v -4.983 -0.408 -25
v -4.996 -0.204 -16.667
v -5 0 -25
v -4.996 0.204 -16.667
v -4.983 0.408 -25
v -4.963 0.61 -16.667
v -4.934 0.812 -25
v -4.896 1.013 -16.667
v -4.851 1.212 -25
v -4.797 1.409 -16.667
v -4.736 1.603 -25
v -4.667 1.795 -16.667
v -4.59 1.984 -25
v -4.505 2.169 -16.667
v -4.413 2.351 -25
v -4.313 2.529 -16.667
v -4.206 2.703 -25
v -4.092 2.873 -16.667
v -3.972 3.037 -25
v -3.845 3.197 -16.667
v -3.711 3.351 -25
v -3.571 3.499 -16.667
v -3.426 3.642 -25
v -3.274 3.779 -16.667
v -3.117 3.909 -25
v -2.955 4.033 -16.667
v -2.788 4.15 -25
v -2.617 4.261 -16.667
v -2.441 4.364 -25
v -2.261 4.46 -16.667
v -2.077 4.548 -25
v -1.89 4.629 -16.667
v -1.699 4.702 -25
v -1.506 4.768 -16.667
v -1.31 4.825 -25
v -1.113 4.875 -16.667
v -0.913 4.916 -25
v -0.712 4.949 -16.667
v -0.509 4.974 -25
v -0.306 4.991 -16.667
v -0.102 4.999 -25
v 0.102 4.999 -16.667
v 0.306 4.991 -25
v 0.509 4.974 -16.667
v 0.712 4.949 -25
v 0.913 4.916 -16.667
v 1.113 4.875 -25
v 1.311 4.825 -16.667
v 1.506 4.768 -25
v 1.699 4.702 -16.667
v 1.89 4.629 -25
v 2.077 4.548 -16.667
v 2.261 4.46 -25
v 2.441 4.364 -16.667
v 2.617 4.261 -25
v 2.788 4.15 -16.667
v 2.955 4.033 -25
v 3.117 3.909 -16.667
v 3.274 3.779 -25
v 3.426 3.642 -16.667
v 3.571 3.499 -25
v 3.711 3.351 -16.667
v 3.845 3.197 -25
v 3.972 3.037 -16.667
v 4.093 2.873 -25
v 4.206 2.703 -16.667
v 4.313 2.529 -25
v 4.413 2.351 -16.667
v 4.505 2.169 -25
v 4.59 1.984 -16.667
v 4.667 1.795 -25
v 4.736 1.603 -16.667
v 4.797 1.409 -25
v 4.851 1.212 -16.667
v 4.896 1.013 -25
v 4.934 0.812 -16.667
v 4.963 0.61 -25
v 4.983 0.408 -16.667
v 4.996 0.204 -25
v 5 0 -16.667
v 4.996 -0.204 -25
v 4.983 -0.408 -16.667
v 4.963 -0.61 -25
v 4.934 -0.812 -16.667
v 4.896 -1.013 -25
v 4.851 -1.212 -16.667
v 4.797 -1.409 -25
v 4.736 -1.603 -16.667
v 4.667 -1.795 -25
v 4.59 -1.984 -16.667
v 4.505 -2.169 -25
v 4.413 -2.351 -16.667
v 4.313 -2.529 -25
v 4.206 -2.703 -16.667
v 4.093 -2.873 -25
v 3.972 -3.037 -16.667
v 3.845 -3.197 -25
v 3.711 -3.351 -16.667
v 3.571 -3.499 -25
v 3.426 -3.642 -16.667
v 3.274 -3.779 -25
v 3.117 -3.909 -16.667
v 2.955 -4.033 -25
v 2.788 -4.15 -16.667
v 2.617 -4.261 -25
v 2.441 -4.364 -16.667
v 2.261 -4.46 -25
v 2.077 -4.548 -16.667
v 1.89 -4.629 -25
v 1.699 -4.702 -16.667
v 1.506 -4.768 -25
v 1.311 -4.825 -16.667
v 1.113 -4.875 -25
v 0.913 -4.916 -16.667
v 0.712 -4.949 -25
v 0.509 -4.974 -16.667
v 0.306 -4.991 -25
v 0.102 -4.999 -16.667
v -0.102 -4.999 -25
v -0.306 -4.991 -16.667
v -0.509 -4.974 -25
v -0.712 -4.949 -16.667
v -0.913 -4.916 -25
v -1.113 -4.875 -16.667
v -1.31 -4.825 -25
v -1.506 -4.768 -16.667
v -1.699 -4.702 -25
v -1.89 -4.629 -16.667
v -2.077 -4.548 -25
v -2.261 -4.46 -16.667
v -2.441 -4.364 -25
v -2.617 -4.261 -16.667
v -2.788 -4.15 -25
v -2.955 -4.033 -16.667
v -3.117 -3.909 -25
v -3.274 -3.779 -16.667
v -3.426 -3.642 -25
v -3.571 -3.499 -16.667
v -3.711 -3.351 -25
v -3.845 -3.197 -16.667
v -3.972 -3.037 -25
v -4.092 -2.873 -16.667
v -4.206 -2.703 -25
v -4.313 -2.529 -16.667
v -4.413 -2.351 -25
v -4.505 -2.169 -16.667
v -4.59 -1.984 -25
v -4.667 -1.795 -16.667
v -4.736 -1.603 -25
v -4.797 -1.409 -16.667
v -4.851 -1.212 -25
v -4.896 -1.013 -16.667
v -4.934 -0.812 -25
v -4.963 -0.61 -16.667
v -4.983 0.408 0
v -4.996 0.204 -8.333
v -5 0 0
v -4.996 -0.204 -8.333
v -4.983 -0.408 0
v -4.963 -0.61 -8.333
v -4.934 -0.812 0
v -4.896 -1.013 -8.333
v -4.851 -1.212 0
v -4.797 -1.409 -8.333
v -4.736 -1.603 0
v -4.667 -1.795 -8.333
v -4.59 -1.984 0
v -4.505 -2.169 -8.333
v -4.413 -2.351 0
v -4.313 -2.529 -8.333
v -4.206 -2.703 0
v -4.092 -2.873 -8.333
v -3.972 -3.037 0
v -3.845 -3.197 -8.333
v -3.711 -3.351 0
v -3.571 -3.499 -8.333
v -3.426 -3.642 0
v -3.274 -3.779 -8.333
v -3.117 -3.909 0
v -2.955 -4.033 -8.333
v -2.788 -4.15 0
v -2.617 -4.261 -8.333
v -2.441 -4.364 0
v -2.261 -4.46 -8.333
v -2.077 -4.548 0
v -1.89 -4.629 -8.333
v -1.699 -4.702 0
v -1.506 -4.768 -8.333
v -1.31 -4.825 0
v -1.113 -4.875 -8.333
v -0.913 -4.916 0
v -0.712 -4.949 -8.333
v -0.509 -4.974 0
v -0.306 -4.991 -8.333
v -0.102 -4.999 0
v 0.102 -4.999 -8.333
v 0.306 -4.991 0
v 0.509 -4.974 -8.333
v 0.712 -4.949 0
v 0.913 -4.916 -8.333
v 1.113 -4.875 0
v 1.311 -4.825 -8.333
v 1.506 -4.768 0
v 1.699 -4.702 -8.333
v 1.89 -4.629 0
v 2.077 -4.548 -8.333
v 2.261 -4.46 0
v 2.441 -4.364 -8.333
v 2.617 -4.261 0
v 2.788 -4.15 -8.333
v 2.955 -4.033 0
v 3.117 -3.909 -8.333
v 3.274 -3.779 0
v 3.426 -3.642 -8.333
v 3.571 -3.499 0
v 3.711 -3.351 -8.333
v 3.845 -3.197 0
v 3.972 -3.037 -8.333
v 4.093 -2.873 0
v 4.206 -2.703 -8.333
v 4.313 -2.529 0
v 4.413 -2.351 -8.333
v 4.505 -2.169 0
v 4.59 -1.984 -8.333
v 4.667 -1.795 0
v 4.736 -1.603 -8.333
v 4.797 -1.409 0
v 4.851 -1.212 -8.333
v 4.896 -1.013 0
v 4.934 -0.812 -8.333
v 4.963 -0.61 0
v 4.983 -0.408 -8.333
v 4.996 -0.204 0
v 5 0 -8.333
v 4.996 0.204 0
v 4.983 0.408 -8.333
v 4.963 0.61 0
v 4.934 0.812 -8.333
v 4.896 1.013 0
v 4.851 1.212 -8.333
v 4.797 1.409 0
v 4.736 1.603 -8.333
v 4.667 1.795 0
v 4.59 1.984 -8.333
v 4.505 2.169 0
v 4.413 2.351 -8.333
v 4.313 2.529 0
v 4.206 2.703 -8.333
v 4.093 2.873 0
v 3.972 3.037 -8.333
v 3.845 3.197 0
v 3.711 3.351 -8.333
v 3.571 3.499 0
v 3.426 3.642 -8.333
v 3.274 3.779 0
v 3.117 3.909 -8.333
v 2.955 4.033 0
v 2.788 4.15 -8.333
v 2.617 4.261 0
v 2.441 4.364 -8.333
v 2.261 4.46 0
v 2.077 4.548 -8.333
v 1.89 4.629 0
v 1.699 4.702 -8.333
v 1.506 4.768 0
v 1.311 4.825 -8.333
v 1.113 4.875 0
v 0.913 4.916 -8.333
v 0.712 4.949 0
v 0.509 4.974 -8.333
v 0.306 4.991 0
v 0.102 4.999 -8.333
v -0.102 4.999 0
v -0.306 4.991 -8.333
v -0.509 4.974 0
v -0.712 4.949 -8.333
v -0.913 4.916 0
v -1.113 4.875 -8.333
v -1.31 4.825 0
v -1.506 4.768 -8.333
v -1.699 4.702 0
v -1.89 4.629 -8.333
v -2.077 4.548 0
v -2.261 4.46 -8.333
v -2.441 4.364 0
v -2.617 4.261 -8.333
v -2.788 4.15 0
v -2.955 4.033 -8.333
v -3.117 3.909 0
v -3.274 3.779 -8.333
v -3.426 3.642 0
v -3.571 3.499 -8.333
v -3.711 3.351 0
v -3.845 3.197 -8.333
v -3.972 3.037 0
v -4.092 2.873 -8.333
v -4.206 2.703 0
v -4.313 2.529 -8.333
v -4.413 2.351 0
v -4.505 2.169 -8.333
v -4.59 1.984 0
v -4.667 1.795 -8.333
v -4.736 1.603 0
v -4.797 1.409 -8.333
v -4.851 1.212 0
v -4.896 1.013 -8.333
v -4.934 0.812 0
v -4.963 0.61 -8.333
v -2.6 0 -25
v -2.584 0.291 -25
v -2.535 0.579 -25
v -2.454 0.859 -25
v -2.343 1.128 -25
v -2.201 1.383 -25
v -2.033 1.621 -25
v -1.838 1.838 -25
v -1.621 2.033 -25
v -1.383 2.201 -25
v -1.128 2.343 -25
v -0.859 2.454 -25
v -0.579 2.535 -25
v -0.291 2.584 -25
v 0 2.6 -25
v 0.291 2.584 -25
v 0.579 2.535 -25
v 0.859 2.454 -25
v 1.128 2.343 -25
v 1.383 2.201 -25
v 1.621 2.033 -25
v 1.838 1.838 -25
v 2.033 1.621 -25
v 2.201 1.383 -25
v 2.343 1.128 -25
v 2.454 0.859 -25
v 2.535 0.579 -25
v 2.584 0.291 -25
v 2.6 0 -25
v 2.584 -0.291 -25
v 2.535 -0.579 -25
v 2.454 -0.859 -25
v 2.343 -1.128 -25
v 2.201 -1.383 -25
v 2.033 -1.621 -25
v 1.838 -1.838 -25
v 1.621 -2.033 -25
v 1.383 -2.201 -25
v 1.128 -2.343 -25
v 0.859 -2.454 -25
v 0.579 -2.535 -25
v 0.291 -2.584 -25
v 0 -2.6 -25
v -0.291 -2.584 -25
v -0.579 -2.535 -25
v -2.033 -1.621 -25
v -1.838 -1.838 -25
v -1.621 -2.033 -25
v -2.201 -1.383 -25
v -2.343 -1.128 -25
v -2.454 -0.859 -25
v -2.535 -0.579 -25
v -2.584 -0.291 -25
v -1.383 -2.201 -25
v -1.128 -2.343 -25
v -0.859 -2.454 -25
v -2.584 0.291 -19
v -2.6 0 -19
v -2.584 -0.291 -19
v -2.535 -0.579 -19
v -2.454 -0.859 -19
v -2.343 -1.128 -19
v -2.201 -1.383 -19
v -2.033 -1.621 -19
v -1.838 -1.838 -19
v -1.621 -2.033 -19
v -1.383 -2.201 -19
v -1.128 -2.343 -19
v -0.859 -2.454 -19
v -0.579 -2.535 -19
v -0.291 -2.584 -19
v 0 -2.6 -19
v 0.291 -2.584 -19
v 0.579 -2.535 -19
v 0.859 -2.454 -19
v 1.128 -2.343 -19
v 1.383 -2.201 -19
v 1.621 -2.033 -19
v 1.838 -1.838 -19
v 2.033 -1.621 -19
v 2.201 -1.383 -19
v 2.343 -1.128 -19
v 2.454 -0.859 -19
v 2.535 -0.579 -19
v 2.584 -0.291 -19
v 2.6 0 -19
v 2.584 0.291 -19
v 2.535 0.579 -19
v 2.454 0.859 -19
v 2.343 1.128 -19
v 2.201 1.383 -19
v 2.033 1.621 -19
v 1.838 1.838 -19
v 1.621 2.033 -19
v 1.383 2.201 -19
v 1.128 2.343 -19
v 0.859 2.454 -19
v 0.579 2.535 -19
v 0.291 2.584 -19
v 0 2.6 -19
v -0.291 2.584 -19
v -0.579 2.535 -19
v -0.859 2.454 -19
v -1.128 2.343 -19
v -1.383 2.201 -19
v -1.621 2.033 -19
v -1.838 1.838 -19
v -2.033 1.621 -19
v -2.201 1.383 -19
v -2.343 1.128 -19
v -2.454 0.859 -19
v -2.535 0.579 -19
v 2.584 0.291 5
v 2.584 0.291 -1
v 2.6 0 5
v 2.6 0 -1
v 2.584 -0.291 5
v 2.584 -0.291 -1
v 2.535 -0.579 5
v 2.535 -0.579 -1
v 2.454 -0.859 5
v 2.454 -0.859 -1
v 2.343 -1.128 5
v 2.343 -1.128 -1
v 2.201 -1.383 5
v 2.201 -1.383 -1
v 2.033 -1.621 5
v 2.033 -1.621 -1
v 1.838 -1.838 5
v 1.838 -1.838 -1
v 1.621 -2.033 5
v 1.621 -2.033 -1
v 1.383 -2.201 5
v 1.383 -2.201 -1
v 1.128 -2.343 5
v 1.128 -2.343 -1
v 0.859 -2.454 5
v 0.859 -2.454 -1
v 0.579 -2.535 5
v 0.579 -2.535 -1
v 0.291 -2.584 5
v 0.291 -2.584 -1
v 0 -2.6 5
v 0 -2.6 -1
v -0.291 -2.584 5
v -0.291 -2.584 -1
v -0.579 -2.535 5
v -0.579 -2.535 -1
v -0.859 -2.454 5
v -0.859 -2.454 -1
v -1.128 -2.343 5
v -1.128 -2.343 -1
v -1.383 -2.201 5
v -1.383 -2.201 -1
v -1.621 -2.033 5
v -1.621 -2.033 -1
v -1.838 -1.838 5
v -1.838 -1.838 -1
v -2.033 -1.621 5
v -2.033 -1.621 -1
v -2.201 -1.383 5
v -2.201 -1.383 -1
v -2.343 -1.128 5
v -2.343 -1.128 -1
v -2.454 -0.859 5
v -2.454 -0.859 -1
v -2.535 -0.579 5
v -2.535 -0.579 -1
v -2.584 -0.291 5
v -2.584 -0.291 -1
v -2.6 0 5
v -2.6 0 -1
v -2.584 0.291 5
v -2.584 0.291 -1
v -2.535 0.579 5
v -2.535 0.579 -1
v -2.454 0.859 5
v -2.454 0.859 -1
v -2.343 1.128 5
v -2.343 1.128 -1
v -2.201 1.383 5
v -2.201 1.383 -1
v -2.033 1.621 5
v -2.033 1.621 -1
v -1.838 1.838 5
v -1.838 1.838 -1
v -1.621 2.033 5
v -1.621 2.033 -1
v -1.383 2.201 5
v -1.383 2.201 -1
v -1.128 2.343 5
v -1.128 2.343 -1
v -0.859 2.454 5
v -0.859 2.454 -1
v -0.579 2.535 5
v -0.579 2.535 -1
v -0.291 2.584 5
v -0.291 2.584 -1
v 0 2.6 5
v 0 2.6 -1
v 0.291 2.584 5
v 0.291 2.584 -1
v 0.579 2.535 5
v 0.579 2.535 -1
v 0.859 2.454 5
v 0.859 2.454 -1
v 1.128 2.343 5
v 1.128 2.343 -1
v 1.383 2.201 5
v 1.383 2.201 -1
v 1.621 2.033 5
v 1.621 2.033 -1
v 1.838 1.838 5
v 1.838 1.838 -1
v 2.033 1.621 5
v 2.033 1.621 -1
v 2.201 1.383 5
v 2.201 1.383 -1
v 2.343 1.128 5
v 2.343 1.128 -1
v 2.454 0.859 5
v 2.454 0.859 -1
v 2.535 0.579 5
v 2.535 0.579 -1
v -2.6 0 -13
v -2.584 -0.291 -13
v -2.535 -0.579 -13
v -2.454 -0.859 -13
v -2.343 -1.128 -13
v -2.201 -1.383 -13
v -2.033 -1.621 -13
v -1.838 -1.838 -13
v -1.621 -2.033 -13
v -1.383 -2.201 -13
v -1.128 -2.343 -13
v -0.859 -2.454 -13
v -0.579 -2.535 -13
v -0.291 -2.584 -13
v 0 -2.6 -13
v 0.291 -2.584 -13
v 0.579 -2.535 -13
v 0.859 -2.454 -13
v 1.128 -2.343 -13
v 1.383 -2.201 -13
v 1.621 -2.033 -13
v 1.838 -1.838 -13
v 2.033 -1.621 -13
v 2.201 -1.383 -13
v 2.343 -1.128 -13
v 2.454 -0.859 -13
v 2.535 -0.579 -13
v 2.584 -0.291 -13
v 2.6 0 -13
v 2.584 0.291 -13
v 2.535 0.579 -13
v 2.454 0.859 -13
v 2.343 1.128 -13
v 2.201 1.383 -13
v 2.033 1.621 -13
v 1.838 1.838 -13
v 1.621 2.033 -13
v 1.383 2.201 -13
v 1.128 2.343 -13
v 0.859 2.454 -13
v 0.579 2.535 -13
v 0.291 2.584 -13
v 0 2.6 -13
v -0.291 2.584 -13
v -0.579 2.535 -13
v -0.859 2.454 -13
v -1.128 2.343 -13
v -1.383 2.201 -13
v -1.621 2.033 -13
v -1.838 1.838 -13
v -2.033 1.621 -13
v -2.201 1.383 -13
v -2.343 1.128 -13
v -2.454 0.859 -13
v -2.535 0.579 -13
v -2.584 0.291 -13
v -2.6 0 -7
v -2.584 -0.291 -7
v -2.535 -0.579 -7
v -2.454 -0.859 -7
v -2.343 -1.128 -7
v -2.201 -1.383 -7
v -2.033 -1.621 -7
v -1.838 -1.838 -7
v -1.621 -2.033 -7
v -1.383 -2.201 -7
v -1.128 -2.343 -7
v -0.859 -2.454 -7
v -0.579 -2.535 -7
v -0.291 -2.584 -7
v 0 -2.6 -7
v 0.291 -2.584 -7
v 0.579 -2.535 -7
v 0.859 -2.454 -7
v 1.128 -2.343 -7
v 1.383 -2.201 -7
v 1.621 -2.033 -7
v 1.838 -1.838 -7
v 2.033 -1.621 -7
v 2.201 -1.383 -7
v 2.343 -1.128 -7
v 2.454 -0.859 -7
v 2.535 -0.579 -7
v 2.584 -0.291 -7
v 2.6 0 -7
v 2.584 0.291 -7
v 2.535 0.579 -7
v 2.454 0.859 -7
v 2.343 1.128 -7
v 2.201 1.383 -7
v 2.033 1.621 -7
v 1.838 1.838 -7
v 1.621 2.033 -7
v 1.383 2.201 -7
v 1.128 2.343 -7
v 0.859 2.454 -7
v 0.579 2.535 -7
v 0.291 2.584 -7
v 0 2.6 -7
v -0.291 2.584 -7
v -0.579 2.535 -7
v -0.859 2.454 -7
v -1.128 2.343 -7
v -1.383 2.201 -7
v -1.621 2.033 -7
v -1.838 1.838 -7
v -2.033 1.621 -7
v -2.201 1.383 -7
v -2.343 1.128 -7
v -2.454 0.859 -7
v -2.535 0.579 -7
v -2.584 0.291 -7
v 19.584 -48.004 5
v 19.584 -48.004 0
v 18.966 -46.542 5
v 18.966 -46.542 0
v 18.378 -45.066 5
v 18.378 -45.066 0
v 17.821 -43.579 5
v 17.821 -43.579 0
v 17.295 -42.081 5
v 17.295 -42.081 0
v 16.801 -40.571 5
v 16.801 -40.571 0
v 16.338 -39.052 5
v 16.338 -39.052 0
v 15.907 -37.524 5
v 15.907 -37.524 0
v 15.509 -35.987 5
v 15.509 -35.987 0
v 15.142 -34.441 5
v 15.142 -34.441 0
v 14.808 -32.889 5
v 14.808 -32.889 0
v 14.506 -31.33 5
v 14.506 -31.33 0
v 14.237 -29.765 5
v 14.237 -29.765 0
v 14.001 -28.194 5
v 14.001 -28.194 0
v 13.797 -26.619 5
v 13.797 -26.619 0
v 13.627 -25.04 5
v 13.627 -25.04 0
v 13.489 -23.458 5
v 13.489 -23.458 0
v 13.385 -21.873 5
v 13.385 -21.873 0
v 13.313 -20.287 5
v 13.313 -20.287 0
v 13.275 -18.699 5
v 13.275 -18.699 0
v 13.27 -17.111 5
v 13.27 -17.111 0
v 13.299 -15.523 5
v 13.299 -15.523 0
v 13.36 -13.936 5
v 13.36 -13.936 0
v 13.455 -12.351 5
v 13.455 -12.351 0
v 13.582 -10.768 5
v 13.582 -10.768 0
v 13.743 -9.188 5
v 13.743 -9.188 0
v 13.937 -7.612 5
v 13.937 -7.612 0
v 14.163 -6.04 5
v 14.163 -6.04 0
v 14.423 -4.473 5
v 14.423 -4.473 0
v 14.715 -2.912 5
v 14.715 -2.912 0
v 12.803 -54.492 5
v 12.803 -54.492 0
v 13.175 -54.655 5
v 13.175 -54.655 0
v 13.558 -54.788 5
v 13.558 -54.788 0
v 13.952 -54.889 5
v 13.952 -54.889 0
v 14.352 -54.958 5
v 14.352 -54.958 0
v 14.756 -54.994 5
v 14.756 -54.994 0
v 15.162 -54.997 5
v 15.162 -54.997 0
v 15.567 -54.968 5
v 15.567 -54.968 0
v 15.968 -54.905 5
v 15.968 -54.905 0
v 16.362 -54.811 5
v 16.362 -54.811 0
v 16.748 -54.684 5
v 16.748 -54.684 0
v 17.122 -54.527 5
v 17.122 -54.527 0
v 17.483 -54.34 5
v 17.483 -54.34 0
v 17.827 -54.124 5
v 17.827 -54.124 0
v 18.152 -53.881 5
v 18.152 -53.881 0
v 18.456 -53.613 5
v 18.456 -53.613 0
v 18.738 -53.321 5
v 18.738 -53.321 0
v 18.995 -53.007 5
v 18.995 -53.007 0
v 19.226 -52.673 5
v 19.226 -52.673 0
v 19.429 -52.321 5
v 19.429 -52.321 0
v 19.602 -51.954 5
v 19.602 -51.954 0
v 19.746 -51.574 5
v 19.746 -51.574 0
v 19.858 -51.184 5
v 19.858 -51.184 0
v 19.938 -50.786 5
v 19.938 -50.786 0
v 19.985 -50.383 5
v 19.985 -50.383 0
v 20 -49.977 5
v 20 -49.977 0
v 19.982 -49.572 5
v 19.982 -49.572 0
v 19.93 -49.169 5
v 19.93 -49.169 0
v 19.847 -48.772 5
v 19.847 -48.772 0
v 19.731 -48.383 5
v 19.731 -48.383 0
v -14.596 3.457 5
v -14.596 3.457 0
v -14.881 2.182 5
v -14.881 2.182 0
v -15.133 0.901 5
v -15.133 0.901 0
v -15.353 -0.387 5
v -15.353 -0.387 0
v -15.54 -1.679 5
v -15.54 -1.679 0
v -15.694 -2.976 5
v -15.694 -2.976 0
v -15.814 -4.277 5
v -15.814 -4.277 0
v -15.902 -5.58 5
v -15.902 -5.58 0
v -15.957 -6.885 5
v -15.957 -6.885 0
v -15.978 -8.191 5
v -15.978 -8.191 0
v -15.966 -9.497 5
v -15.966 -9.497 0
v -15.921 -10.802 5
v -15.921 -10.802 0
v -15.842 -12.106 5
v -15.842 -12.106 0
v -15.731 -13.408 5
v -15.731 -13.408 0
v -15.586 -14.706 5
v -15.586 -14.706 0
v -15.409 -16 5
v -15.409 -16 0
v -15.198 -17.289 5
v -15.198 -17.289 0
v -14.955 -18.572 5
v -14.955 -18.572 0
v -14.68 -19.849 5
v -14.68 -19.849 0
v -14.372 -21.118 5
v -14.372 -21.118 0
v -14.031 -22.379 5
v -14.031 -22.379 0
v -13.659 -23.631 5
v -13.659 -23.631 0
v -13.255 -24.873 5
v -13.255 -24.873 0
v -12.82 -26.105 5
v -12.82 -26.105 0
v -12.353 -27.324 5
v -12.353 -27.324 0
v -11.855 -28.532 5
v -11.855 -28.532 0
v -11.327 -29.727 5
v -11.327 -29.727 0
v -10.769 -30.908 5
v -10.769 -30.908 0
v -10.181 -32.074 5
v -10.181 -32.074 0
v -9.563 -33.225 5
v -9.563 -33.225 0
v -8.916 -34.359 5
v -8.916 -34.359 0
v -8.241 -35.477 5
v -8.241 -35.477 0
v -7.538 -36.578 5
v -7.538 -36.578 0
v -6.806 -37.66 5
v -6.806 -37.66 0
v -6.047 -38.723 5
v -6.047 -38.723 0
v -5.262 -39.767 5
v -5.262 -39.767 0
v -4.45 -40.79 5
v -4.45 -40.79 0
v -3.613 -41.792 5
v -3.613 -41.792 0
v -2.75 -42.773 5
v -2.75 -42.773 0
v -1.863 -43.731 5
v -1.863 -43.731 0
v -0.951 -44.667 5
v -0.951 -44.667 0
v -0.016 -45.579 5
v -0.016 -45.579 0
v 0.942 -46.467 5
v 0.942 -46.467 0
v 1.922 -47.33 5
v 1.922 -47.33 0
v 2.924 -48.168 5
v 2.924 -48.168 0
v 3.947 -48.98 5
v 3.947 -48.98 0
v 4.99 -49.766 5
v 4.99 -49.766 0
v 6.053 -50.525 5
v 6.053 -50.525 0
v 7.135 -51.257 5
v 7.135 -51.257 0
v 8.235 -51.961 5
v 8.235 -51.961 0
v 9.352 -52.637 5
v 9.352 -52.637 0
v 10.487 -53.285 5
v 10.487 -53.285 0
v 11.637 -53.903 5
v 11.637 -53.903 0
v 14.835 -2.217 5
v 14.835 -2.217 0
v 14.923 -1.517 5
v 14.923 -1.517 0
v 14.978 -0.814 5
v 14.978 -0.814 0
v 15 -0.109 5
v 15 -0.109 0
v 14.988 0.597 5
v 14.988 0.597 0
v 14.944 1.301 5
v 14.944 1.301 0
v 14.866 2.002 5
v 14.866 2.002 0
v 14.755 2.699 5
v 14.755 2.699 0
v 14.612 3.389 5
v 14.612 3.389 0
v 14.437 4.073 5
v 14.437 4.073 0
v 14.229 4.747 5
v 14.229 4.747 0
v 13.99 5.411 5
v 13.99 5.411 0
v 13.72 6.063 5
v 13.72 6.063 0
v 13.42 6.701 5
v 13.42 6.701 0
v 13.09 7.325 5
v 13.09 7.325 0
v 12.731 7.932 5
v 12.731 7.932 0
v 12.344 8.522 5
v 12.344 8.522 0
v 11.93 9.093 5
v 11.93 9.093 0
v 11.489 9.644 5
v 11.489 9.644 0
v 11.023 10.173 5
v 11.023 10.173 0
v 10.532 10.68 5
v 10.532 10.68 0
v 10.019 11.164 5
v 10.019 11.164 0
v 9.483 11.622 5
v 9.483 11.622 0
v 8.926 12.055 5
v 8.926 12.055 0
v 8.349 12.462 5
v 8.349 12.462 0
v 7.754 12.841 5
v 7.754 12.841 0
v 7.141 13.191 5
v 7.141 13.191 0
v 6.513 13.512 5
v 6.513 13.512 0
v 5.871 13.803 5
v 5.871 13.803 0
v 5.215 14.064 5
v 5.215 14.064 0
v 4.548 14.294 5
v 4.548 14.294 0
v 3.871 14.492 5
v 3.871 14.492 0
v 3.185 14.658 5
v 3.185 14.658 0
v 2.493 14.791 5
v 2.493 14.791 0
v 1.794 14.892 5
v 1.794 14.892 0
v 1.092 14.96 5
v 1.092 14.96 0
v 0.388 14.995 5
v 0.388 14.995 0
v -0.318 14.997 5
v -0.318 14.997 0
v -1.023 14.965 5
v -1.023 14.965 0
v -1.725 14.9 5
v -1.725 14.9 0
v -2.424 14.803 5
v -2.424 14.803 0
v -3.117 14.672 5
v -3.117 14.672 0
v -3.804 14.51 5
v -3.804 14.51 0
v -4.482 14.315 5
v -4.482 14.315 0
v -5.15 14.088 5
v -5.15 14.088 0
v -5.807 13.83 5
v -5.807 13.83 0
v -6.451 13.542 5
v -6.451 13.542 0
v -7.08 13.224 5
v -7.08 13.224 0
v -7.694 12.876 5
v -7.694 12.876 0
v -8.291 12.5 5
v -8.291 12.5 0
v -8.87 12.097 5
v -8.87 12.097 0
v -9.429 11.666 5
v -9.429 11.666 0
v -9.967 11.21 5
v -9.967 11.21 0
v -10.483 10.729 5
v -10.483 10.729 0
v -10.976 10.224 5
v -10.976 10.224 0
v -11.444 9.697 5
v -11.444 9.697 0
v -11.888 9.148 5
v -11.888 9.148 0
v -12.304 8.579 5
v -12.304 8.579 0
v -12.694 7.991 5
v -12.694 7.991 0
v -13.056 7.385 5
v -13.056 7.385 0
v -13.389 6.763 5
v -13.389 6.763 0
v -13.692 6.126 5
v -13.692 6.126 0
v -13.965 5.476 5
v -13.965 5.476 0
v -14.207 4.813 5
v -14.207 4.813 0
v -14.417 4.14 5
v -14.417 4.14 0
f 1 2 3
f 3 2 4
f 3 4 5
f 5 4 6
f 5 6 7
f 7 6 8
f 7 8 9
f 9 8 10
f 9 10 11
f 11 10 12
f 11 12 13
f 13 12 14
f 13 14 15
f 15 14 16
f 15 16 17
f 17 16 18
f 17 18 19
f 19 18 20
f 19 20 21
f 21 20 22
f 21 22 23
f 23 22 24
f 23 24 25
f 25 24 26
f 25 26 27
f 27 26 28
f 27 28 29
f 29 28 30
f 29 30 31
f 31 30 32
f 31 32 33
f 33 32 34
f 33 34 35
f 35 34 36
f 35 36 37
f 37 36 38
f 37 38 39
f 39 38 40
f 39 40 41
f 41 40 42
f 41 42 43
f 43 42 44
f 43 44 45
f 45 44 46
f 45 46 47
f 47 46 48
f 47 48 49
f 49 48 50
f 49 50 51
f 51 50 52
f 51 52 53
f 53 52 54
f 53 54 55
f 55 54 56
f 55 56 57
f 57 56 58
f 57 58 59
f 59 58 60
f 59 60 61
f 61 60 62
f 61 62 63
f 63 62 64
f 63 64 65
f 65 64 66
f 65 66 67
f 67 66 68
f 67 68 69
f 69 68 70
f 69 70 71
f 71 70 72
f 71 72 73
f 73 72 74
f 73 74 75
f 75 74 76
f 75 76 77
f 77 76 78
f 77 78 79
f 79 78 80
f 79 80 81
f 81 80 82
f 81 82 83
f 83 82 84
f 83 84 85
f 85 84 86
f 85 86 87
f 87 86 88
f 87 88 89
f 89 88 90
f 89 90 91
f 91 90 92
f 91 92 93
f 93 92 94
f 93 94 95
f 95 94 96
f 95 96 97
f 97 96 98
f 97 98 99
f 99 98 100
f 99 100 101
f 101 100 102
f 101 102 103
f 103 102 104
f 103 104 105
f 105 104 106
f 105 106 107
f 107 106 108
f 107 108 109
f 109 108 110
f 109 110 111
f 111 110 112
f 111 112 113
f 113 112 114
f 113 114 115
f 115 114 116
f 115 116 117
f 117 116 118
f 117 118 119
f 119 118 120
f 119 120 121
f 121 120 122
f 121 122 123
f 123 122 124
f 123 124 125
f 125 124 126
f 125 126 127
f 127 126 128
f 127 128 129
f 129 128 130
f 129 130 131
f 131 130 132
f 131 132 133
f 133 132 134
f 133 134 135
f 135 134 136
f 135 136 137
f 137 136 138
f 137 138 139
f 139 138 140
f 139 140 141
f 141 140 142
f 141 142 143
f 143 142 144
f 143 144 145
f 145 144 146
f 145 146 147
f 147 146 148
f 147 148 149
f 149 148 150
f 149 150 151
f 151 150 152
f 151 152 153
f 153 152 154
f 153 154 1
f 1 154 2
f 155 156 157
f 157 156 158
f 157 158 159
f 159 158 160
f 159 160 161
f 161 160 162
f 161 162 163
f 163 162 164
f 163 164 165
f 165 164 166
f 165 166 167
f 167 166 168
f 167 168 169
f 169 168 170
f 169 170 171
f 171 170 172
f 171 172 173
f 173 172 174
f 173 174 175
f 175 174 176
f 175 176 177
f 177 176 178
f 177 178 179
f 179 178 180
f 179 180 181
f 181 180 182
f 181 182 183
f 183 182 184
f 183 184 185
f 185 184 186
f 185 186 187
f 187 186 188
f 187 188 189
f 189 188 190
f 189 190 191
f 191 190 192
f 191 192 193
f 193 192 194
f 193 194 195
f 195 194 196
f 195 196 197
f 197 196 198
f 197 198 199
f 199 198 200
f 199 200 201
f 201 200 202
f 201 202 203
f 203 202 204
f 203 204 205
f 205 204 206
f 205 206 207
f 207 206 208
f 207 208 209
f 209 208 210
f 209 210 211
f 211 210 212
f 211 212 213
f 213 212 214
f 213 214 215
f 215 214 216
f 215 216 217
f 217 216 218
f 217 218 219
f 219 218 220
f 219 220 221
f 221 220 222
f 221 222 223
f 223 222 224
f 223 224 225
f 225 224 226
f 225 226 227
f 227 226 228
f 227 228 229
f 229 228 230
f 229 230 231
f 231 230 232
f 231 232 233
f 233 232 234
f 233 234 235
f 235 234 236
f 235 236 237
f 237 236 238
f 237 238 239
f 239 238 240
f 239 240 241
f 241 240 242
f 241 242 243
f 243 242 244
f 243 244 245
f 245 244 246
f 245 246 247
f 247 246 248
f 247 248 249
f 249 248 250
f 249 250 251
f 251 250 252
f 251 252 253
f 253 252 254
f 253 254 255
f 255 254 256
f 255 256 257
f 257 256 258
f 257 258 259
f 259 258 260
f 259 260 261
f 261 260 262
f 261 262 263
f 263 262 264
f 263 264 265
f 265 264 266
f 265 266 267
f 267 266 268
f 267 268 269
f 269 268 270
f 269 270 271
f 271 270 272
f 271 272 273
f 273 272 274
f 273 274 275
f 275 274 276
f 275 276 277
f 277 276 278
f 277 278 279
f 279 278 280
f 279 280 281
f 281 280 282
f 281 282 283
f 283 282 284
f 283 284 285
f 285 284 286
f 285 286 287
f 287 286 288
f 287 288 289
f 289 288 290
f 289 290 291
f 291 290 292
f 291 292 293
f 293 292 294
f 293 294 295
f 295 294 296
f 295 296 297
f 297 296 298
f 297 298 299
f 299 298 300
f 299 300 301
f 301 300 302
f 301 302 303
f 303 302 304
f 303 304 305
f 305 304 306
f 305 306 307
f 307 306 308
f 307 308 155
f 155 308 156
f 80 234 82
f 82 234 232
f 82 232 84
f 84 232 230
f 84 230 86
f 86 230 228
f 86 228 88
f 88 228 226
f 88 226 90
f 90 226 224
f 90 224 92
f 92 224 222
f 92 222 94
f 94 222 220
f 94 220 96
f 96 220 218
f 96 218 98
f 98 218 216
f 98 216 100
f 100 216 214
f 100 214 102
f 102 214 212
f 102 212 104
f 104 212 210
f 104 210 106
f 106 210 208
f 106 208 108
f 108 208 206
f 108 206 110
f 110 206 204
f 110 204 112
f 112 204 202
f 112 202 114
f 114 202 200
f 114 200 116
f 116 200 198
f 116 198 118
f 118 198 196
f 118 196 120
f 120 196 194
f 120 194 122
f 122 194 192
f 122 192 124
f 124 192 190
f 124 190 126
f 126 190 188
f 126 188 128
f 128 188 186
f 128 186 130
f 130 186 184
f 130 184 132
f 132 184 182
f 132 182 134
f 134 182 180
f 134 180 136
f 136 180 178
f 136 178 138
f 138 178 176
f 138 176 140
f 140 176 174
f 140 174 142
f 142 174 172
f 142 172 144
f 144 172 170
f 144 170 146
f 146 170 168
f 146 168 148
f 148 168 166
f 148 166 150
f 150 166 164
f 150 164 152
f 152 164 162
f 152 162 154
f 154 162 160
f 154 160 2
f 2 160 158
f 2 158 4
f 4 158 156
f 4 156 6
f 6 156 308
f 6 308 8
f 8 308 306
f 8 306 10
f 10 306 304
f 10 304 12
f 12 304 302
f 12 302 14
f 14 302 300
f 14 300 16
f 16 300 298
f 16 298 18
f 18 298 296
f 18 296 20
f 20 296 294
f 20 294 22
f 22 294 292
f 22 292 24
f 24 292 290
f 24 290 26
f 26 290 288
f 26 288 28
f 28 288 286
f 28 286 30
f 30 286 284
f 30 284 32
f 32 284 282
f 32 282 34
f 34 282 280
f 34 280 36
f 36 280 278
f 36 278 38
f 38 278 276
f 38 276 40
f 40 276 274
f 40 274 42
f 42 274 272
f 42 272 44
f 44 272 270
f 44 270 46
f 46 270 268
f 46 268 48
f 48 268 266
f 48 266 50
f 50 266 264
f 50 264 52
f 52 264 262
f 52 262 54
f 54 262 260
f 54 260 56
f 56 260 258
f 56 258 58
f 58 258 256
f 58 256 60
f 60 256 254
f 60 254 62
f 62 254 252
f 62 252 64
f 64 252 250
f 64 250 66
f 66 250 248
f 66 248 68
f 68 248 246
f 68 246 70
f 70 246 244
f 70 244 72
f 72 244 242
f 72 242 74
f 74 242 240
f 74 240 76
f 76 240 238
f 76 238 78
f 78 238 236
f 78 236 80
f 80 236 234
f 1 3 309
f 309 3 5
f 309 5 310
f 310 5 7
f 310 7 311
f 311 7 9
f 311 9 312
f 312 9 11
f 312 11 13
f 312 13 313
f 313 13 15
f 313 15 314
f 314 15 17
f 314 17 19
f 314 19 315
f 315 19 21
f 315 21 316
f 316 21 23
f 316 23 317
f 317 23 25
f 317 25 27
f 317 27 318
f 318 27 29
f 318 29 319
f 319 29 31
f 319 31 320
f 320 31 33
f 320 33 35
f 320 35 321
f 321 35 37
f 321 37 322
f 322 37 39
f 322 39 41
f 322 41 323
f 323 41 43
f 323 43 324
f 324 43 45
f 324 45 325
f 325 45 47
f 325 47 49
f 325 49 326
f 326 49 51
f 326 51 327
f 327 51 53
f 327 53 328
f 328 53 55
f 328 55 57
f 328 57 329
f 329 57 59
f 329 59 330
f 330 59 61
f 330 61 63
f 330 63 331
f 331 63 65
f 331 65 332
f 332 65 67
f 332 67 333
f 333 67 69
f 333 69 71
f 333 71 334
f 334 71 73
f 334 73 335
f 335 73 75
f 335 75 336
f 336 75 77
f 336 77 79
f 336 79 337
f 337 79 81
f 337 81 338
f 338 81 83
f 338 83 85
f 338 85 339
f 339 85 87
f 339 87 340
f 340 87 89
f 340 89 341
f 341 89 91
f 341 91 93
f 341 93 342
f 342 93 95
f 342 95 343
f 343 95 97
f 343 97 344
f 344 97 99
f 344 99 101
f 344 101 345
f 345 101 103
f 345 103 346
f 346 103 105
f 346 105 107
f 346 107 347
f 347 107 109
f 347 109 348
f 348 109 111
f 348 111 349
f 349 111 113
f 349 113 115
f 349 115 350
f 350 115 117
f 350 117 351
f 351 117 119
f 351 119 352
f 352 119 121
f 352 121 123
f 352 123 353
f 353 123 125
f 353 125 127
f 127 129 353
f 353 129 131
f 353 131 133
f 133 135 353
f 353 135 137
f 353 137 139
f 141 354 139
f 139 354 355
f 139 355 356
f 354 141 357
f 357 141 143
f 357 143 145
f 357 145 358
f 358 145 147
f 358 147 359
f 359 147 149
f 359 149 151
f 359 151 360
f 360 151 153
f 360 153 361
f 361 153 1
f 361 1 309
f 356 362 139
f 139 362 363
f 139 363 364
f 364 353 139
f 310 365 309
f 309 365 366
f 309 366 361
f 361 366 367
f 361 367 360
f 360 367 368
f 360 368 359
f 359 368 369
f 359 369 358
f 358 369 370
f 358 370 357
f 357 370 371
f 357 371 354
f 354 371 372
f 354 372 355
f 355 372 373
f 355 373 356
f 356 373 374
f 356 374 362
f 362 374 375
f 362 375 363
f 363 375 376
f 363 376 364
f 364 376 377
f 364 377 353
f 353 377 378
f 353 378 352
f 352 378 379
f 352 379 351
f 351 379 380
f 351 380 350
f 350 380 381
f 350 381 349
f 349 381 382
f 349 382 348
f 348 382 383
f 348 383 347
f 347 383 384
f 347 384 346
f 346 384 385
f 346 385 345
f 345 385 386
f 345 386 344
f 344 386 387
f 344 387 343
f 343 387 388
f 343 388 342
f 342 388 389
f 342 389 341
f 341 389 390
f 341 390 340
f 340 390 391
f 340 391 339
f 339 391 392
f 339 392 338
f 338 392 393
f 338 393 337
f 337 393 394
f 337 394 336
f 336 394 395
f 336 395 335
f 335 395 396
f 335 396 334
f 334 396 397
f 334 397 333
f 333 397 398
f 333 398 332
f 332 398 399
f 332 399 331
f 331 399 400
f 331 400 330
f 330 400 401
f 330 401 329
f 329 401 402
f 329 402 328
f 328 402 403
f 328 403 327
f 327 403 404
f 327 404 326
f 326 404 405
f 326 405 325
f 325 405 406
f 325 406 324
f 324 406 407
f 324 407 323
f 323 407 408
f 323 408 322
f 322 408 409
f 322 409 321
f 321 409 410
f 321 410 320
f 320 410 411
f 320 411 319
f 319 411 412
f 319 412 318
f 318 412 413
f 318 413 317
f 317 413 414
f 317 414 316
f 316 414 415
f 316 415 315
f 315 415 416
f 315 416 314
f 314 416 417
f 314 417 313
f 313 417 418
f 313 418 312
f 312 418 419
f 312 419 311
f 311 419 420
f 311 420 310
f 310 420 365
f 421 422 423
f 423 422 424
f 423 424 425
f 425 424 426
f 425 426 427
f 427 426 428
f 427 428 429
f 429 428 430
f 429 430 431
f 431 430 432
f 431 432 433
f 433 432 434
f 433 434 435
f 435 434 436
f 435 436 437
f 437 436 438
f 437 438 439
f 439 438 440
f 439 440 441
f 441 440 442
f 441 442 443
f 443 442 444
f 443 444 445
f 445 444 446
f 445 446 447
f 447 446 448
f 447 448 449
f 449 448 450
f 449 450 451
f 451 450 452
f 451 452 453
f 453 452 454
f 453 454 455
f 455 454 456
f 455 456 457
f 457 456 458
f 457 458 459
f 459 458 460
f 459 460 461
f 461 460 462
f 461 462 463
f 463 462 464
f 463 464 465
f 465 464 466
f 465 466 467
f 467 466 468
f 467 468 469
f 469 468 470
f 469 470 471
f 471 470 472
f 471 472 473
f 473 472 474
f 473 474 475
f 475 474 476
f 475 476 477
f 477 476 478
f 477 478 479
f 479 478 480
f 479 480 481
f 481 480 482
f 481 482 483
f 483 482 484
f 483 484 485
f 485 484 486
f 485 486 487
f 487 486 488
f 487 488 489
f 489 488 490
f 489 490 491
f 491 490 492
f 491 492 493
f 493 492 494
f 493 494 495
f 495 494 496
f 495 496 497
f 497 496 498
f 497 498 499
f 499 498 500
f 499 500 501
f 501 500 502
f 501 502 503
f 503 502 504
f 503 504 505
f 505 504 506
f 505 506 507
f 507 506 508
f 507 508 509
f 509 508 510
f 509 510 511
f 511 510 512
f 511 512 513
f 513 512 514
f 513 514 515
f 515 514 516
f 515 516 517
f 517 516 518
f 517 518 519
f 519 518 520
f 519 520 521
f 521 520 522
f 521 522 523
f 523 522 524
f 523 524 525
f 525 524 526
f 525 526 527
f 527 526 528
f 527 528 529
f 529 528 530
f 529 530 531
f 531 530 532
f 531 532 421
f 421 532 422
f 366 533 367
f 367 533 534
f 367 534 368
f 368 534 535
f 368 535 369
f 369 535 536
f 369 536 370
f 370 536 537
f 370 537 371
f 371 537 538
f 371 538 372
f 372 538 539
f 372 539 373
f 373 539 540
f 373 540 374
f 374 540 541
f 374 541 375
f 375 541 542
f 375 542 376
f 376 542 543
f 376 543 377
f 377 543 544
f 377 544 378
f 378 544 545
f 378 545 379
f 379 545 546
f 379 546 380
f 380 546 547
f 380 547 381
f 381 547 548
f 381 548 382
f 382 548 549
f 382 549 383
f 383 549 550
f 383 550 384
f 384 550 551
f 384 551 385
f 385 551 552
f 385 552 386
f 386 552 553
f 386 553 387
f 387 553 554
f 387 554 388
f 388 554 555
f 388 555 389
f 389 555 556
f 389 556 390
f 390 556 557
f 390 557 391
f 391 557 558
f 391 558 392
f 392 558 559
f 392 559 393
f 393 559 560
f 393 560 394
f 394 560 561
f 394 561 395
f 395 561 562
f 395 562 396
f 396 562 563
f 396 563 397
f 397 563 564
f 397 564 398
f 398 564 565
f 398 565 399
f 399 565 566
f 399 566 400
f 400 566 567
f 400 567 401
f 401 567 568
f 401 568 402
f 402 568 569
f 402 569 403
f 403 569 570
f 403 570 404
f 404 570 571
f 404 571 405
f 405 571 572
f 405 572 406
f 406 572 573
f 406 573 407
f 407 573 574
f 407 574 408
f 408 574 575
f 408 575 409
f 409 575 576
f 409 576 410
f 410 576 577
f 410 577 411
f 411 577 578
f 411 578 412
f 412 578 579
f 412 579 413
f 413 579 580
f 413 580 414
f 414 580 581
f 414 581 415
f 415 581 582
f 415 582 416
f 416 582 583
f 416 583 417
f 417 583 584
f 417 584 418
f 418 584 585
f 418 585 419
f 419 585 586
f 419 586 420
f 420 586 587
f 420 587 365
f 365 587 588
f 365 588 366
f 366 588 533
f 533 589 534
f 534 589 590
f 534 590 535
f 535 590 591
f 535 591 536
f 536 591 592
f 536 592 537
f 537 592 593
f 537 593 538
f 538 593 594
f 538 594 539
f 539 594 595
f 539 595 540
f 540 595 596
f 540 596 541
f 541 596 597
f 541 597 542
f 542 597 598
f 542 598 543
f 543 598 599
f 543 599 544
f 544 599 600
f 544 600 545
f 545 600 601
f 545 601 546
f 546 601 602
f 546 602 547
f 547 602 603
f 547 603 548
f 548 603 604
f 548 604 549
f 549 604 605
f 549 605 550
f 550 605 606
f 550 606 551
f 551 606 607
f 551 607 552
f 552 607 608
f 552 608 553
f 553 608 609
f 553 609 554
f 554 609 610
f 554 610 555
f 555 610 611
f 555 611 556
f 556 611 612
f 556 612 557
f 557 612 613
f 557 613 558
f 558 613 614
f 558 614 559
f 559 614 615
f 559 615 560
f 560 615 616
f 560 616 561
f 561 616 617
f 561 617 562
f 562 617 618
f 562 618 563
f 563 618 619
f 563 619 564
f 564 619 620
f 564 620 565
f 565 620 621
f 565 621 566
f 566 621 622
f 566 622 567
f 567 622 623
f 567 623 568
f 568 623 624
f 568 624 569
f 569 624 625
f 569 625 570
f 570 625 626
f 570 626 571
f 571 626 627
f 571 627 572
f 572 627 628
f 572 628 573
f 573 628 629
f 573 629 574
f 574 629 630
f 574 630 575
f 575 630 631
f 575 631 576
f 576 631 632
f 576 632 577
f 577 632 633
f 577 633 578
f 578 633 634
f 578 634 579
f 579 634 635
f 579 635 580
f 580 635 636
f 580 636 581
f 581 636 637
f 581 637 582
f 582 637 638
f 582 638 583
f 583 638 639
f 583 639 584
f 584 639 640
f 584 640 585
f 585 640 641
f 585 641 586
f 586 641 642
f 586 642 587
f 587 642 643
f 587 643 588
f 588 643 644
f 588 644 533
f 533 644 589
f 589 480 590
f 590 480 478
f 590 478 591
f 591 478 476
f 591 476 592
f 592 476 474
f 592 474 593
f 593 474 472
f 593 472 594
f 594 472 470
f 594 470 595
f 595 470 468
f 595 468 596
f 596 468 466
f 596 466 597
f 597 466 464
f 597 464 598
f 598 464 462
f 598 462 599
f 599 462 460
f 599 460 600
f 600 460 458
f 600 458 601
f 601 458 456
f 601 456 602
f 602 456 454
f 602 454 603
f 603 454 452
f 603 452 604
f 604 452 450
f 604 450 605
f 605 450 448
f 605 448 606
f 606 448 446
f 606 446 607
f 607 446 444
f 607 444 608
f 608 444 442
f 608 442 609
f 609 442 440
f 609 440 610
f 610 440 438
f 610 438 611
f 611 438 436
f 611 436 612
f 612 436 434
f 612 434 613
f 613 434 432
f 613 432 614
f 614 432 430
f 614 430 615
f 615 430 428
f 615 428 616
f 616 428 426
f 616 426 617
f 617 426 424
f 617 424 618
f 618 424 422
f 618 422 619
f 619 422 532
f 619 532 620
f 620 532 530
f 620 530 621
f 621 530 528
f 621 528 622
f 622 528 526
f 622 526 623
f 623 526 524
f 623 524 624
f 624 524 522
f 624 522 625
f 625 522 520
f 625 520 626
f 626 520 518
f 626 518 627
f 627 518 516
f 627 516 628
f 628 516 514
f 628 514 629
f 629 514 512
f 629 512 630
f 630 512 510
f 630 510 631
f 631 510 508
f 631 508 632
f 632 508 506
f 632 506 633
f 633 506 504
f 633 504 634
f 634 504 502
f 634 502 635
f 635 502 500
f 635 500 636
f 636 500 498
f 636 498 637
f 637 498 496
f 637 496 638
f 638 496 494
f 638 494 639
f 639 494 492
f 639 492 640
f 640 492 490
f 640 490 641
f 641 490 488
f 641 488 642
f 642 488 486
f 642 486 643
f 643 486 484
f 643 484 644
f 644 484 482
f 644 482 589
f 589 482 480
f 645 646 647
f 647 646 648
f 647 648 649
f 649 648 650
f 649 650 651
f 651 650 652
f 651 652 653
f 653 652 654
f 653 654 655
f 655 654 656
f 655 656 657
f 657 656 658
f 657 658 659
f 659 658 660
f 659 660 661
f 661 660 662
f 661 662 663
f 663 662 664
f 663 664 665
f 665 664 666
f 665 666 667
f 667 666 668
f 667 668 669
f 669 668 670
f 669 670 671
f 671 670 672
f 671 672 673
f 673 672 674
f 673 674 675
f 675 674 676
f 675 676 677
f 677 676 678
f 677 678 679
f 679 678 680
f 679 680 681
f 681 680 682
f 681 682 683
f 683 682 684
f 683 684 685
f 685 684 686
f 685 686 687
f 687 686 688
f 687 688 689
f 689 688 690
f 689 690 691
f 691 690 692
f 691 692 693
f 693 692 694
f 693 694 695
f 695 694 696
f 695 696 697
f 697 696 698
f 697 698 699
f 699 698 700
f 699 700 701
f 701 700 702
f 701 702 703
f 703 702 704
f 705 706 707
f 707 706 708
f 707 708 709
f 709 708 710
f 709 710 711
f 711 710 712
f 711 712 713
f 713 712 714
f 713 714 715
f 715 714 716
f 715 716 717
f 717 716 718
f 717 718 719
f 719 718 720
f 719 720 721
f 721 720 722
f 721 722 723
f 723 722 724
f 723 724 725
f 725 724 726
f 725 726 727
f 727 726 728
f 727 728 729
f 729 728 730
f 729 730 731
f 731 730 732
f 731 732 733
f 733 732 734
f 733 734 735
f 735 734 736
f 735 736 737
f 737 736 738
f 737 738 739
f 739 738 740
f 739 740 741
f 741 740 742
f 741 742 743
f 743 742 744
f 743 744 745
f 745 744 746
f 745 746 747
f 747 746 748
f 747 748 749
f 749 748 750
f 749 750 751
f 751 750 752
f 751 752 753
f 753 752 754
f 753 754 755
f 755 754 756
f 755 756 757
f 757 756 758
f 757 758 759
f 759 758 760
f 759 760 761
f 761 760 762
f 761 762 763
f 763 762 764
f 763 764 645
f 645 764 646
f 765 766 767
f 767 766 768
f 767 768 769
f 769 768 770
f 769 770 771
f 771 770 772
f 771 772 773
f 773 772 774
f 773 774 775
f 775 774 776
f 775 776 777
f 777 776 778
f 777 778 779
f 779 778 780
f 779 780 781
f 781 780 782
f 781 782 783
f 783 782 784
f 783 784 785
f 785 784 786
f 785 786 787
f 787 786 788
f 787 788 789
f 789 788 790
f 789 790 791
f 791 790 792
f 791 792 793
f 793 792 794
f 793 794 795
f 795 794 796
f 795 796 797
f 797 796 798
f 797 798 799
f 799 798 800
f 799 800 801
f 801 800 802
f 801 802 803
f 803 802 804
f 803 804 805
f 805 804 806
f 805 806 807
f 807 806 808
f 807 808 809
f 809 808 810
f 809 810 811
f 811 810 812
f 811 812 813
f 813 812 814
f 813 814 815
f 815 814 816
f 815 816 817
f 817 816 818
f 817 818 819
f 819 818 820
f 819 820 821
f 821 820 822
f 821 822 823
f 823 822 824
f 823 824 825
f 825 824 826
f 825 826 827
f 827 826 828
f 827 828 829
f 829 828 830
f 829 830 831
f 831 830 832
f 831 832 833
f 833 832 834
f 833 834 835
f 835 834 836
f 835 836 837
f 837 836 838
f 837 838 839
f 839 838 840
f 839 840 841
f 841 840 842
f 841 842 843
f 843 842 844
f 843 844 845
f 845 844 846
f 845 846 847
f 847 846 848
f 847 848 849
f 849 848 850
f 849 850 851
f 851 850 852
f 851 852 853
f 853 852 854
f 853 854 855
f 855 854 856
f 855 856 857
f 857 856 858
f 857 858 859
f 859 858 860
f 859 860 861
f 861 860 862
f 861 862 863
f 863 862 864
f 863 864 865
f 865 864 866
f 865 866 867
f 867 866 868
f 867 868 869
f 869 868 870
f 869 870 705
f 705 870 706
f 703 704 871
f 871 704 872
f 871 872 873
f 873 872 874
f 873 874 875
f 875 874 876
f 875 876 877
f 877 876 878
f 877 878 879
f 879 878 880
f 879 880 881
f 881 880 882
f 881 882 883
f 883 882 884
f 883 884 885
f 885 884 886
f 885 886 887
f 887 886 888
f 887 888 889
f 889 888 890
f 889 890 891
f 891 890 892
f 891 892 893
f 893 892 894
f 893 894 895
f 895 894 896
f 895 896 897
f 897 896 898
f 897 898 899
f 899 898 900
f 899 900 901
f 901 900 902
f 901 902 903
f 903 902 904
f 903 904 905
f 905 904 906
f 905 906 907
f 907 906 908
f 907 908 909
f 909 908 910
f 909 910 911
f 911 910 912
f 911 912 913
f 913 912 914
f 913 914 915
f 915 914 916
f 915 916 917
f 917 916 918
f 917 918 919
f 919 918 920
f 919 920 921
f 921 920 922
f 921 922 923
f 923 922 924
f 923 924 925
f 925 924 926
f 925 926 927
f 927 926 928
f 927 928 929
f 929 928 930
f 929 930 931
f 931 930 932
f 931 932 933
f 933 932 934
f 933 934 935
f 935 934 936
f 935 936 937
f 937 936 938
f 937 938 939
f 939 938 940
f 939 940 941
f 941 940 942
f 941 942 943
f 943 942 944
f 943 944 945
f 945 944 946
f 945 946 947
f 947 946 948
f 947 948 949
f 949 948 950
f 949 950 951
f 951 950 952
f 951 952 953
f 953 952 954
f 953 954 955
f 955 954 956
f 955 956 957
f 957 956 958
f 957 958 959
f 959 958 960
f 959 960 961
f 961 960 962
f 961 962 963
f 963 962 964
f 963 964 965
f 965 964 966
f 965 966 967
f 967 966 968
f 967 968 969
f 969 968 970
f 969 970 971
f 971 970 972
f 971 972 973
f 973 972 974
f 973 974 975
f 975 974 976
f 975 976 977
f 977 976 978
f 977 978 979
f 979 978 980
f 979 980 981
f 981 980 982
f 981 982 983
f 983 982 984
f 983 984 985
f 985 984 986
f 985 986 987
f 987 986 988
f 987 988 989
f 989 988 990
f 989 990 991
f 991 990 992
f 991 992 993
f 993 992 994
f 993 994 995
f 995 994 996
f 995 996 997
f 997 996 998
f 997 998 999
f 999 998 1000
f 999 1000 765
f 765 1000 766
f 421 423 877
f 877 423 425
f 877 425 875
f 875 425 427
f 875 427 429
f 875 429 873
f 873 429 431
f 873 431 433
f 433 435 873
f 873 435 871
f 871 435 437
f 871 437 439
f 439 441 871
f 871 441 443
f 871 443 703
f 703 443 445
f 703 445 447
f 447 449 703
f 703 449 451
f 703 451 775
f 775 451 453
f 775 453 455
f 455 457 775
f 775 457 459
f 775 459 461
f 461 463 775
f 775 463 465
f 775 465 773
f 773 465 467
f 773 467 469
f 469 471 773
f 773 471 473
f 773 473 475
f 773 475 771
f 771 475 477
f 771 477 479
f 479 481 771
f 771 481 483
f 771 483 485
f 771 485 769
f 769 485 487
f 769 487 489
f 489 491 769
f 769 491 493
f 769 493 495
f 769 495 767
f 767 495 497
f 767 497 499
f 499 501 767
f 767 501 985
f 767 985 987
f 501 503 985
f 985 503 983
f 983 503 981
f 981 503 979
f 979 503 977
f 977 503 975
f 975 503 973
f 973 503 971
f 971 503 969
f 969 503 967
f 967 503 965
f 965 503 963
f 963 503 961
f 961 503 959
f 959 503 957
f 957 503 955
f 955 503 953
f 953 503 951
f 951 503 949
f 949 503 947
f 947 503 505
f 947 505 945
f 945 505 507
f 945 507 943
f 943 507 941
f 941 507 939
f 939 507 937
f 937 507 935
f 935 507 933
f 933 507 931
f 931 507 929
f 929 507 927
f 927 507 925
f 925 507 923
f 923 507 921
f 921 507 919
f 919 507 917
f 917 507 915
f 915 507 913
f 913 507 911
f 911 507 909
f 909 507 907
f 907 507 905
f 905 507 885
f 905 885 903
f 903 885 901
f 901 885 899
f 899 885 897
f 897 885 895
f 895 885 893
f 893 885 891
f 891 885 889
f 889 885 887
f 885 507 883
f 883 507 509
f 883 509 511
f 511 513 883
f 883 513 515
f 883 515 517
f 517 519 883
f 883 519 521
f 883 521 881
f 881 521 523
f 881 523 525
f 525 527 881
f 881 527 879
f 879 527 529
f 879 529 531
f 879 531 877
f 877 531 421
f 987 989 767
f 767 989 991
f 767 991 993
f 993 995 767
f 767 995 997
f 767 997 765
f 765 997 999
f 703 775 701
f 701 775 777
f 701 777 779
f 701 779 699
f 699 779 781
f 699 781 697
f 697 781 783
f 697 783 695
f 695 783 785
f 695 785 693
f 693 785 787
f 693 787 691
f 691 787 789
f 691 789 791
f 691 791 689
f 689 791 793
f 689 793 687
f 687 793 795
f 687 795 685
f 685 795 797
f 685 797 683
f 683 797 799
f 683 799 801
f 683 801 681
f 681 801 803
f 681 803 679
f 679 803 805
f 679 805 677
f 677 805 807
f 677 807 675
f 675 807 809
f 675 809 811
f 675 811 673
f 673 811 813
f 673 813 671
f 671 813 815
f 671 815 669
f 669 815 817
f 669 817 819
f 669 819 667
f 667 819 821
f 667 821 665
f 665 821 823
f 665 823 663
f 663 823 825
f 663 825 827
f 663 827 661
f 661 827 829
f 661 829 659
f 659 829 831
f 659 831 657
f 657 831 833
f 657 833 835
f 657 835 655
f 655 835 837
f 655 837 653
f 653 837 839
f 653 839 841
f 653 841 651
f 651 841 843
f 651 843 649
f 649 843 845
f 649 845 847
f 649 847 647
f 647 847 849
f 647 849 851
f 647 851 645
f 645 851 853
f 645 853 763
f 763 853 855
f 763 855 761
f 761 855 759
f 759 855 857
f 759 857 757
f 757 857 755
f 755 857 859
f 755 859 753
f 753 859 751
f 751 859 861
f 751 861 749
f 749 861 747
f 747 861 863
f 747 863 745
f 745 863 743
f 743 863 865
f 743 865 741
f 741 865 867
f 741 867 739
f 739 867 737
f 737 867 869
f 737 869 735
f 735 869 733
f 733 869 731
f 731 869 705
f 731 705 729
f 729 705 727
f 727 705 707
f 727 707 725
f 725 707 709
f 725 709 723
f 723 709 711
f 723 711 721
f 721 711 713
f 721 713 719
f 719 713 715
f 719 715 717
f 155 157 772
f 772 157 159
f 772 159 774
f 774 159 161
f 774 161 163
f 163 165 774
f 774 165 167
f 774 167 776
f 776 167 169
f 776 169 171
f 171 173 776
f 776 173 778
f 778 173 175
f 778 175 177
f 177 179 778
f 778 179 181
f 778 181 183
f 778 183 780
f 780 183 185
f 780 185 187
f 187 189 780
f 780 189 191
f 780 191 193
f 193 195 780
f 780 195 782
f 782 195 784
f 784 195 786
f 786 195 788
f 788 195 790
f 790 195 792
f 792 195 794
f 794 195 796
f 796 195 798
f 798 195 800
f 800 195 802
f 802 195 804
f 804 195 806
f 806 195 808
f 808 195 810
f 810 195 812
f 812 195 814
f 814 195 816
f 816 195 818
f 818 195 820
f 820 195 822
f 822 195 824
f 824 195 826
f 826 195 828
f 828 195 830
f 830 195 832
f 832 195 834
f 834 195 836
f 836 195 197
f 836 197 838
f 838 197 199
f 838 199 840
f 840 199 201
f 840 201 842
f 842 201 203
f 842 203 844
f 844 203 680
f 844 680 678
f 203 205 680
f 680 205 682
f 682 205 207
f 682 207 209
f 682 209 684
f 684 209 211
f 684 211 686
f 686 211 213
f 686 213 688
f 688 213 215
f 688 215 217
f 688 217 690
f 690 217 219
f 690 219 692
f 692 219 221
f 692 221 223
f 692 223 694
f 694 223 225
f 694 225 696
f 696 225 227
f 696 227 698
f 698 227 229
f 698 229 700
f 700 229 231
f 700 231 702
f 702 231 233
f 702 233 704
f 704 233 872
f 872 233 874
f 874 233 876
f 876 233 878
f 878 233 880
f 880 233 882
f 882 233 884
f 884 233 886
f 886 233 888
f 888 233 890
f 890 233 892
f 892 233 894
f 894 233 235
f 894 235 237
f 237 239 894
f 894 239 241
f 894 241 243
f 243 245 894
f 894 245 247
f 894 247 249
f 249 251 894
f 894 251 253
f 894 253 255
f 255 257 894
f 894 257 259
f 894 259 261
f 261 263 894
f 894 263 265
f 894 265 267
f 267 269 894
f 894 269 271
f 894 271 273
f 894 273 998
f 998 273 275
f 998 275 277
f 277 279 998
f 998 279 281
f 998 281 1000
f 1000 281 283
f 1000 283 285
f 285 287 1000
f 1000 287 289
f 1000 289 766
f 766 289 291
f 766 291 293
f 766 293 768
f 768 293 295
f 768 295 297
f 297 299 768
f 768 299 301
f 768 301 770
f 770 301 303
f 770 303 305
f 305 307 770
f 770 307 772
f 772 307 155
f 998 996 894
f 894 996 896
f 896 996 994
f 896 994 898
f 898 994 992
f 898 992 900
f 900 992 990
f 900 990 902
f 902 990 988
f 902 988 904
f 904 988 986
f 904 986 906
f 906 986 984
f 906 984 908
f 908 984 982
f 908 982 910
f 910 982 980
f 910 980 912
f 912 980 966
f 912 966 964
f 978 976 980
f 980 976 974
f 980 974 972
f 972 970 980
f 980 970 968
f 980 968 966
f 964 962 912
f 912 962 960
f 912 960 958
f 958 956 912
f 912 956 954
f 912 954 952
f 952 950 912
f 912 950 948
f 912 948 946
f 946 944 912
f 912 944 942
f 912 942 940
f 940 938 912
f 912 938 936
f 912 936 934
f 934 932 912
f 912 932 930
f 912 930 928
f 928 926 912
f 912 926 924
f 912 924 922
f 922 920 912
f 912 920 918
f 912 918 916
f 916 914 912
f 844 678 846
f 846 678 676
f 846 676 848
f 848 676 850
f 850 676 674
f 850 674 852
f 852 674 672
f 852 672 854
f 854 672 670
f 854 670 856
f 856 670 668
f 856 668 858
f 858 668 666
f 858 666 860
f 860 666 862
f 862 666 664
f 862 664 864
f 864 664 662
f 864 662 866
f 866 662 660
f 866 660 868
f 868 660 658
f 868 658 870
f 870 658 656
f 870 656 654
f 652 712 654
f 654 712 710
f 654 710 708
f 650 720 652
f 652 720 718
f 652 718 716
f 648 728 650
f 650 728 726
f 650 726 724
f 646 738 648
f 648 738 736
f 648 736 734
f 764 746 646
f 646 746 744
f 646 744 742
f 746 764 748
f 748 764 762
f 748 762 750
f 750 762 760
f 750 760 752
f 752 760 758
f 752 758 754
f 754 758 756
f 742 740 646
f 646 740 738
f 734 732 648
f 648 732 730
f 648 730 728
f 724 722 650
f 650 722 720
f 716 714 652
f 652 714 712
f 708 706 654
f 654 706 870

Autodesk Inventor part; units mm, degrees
ref_plane "YZ Plane" through (0, 0, 0) normal (1, 0, 0) x (0, 1, 0)
ref_plane "XZ Plane" through (0, 0, 0) normal (0, 1, 0) x (-1, 0, 0)
ref_plane "XY Plane" through (0, 0, 0) normal (0, 0, 1) x (1, 0, 0)
sketch "Sketch1" plane through (0, 0, 0) normal (0, 0, 1) x (1, 0, 0)
  circle A0 centre (0, 0) radius 15
  circle A1 centre (15, -50) radius 5
  arc A2 (14.7146, -2.9124) -> (19.5845, -48.0044) centre (89.2722, -17.6691) ccw
  arc A3 (-14.5962, 3.4571) -> (12.8032, -54.4915) centre (35.3589, -8.3749) ccw
  point P0 (15, -55)
  point P1 (13.6233, -6.2774)
  point P2 (15, -45)
  dimension "d0" = 30
  dimension "d1" = 10
  dimension "d2" = 15
  dimension "d3" = 50
extrude "Extrusion1" add sketch "Sketch1" along normal blind 5
sketch "Sketch2" plane through (0, 0, 5) normal (0, 0, 1) x (1, 0, 0)
  circle A0 centre (0, 0) radius 2.6
  dimension "d8" = 5.2
extrude "Extrusion2" cut sketch "Sketch2" against normal blind 40
sketch "Sketch3" plane through (0, 0, 0) normal (0, 0, -1) x (-1, 0, 0)
  circle A0 centre (0, 0) radius 2.6 projected
  circle A1 centre (0, 0) radius 5
  circle A2 centre (0, 0) radius 2.6
  dimension "d13" = 10
extrude "Extrusion3" add sketch "Sketch3" along normal blind 25
properties part number "p2_3DPrint"
